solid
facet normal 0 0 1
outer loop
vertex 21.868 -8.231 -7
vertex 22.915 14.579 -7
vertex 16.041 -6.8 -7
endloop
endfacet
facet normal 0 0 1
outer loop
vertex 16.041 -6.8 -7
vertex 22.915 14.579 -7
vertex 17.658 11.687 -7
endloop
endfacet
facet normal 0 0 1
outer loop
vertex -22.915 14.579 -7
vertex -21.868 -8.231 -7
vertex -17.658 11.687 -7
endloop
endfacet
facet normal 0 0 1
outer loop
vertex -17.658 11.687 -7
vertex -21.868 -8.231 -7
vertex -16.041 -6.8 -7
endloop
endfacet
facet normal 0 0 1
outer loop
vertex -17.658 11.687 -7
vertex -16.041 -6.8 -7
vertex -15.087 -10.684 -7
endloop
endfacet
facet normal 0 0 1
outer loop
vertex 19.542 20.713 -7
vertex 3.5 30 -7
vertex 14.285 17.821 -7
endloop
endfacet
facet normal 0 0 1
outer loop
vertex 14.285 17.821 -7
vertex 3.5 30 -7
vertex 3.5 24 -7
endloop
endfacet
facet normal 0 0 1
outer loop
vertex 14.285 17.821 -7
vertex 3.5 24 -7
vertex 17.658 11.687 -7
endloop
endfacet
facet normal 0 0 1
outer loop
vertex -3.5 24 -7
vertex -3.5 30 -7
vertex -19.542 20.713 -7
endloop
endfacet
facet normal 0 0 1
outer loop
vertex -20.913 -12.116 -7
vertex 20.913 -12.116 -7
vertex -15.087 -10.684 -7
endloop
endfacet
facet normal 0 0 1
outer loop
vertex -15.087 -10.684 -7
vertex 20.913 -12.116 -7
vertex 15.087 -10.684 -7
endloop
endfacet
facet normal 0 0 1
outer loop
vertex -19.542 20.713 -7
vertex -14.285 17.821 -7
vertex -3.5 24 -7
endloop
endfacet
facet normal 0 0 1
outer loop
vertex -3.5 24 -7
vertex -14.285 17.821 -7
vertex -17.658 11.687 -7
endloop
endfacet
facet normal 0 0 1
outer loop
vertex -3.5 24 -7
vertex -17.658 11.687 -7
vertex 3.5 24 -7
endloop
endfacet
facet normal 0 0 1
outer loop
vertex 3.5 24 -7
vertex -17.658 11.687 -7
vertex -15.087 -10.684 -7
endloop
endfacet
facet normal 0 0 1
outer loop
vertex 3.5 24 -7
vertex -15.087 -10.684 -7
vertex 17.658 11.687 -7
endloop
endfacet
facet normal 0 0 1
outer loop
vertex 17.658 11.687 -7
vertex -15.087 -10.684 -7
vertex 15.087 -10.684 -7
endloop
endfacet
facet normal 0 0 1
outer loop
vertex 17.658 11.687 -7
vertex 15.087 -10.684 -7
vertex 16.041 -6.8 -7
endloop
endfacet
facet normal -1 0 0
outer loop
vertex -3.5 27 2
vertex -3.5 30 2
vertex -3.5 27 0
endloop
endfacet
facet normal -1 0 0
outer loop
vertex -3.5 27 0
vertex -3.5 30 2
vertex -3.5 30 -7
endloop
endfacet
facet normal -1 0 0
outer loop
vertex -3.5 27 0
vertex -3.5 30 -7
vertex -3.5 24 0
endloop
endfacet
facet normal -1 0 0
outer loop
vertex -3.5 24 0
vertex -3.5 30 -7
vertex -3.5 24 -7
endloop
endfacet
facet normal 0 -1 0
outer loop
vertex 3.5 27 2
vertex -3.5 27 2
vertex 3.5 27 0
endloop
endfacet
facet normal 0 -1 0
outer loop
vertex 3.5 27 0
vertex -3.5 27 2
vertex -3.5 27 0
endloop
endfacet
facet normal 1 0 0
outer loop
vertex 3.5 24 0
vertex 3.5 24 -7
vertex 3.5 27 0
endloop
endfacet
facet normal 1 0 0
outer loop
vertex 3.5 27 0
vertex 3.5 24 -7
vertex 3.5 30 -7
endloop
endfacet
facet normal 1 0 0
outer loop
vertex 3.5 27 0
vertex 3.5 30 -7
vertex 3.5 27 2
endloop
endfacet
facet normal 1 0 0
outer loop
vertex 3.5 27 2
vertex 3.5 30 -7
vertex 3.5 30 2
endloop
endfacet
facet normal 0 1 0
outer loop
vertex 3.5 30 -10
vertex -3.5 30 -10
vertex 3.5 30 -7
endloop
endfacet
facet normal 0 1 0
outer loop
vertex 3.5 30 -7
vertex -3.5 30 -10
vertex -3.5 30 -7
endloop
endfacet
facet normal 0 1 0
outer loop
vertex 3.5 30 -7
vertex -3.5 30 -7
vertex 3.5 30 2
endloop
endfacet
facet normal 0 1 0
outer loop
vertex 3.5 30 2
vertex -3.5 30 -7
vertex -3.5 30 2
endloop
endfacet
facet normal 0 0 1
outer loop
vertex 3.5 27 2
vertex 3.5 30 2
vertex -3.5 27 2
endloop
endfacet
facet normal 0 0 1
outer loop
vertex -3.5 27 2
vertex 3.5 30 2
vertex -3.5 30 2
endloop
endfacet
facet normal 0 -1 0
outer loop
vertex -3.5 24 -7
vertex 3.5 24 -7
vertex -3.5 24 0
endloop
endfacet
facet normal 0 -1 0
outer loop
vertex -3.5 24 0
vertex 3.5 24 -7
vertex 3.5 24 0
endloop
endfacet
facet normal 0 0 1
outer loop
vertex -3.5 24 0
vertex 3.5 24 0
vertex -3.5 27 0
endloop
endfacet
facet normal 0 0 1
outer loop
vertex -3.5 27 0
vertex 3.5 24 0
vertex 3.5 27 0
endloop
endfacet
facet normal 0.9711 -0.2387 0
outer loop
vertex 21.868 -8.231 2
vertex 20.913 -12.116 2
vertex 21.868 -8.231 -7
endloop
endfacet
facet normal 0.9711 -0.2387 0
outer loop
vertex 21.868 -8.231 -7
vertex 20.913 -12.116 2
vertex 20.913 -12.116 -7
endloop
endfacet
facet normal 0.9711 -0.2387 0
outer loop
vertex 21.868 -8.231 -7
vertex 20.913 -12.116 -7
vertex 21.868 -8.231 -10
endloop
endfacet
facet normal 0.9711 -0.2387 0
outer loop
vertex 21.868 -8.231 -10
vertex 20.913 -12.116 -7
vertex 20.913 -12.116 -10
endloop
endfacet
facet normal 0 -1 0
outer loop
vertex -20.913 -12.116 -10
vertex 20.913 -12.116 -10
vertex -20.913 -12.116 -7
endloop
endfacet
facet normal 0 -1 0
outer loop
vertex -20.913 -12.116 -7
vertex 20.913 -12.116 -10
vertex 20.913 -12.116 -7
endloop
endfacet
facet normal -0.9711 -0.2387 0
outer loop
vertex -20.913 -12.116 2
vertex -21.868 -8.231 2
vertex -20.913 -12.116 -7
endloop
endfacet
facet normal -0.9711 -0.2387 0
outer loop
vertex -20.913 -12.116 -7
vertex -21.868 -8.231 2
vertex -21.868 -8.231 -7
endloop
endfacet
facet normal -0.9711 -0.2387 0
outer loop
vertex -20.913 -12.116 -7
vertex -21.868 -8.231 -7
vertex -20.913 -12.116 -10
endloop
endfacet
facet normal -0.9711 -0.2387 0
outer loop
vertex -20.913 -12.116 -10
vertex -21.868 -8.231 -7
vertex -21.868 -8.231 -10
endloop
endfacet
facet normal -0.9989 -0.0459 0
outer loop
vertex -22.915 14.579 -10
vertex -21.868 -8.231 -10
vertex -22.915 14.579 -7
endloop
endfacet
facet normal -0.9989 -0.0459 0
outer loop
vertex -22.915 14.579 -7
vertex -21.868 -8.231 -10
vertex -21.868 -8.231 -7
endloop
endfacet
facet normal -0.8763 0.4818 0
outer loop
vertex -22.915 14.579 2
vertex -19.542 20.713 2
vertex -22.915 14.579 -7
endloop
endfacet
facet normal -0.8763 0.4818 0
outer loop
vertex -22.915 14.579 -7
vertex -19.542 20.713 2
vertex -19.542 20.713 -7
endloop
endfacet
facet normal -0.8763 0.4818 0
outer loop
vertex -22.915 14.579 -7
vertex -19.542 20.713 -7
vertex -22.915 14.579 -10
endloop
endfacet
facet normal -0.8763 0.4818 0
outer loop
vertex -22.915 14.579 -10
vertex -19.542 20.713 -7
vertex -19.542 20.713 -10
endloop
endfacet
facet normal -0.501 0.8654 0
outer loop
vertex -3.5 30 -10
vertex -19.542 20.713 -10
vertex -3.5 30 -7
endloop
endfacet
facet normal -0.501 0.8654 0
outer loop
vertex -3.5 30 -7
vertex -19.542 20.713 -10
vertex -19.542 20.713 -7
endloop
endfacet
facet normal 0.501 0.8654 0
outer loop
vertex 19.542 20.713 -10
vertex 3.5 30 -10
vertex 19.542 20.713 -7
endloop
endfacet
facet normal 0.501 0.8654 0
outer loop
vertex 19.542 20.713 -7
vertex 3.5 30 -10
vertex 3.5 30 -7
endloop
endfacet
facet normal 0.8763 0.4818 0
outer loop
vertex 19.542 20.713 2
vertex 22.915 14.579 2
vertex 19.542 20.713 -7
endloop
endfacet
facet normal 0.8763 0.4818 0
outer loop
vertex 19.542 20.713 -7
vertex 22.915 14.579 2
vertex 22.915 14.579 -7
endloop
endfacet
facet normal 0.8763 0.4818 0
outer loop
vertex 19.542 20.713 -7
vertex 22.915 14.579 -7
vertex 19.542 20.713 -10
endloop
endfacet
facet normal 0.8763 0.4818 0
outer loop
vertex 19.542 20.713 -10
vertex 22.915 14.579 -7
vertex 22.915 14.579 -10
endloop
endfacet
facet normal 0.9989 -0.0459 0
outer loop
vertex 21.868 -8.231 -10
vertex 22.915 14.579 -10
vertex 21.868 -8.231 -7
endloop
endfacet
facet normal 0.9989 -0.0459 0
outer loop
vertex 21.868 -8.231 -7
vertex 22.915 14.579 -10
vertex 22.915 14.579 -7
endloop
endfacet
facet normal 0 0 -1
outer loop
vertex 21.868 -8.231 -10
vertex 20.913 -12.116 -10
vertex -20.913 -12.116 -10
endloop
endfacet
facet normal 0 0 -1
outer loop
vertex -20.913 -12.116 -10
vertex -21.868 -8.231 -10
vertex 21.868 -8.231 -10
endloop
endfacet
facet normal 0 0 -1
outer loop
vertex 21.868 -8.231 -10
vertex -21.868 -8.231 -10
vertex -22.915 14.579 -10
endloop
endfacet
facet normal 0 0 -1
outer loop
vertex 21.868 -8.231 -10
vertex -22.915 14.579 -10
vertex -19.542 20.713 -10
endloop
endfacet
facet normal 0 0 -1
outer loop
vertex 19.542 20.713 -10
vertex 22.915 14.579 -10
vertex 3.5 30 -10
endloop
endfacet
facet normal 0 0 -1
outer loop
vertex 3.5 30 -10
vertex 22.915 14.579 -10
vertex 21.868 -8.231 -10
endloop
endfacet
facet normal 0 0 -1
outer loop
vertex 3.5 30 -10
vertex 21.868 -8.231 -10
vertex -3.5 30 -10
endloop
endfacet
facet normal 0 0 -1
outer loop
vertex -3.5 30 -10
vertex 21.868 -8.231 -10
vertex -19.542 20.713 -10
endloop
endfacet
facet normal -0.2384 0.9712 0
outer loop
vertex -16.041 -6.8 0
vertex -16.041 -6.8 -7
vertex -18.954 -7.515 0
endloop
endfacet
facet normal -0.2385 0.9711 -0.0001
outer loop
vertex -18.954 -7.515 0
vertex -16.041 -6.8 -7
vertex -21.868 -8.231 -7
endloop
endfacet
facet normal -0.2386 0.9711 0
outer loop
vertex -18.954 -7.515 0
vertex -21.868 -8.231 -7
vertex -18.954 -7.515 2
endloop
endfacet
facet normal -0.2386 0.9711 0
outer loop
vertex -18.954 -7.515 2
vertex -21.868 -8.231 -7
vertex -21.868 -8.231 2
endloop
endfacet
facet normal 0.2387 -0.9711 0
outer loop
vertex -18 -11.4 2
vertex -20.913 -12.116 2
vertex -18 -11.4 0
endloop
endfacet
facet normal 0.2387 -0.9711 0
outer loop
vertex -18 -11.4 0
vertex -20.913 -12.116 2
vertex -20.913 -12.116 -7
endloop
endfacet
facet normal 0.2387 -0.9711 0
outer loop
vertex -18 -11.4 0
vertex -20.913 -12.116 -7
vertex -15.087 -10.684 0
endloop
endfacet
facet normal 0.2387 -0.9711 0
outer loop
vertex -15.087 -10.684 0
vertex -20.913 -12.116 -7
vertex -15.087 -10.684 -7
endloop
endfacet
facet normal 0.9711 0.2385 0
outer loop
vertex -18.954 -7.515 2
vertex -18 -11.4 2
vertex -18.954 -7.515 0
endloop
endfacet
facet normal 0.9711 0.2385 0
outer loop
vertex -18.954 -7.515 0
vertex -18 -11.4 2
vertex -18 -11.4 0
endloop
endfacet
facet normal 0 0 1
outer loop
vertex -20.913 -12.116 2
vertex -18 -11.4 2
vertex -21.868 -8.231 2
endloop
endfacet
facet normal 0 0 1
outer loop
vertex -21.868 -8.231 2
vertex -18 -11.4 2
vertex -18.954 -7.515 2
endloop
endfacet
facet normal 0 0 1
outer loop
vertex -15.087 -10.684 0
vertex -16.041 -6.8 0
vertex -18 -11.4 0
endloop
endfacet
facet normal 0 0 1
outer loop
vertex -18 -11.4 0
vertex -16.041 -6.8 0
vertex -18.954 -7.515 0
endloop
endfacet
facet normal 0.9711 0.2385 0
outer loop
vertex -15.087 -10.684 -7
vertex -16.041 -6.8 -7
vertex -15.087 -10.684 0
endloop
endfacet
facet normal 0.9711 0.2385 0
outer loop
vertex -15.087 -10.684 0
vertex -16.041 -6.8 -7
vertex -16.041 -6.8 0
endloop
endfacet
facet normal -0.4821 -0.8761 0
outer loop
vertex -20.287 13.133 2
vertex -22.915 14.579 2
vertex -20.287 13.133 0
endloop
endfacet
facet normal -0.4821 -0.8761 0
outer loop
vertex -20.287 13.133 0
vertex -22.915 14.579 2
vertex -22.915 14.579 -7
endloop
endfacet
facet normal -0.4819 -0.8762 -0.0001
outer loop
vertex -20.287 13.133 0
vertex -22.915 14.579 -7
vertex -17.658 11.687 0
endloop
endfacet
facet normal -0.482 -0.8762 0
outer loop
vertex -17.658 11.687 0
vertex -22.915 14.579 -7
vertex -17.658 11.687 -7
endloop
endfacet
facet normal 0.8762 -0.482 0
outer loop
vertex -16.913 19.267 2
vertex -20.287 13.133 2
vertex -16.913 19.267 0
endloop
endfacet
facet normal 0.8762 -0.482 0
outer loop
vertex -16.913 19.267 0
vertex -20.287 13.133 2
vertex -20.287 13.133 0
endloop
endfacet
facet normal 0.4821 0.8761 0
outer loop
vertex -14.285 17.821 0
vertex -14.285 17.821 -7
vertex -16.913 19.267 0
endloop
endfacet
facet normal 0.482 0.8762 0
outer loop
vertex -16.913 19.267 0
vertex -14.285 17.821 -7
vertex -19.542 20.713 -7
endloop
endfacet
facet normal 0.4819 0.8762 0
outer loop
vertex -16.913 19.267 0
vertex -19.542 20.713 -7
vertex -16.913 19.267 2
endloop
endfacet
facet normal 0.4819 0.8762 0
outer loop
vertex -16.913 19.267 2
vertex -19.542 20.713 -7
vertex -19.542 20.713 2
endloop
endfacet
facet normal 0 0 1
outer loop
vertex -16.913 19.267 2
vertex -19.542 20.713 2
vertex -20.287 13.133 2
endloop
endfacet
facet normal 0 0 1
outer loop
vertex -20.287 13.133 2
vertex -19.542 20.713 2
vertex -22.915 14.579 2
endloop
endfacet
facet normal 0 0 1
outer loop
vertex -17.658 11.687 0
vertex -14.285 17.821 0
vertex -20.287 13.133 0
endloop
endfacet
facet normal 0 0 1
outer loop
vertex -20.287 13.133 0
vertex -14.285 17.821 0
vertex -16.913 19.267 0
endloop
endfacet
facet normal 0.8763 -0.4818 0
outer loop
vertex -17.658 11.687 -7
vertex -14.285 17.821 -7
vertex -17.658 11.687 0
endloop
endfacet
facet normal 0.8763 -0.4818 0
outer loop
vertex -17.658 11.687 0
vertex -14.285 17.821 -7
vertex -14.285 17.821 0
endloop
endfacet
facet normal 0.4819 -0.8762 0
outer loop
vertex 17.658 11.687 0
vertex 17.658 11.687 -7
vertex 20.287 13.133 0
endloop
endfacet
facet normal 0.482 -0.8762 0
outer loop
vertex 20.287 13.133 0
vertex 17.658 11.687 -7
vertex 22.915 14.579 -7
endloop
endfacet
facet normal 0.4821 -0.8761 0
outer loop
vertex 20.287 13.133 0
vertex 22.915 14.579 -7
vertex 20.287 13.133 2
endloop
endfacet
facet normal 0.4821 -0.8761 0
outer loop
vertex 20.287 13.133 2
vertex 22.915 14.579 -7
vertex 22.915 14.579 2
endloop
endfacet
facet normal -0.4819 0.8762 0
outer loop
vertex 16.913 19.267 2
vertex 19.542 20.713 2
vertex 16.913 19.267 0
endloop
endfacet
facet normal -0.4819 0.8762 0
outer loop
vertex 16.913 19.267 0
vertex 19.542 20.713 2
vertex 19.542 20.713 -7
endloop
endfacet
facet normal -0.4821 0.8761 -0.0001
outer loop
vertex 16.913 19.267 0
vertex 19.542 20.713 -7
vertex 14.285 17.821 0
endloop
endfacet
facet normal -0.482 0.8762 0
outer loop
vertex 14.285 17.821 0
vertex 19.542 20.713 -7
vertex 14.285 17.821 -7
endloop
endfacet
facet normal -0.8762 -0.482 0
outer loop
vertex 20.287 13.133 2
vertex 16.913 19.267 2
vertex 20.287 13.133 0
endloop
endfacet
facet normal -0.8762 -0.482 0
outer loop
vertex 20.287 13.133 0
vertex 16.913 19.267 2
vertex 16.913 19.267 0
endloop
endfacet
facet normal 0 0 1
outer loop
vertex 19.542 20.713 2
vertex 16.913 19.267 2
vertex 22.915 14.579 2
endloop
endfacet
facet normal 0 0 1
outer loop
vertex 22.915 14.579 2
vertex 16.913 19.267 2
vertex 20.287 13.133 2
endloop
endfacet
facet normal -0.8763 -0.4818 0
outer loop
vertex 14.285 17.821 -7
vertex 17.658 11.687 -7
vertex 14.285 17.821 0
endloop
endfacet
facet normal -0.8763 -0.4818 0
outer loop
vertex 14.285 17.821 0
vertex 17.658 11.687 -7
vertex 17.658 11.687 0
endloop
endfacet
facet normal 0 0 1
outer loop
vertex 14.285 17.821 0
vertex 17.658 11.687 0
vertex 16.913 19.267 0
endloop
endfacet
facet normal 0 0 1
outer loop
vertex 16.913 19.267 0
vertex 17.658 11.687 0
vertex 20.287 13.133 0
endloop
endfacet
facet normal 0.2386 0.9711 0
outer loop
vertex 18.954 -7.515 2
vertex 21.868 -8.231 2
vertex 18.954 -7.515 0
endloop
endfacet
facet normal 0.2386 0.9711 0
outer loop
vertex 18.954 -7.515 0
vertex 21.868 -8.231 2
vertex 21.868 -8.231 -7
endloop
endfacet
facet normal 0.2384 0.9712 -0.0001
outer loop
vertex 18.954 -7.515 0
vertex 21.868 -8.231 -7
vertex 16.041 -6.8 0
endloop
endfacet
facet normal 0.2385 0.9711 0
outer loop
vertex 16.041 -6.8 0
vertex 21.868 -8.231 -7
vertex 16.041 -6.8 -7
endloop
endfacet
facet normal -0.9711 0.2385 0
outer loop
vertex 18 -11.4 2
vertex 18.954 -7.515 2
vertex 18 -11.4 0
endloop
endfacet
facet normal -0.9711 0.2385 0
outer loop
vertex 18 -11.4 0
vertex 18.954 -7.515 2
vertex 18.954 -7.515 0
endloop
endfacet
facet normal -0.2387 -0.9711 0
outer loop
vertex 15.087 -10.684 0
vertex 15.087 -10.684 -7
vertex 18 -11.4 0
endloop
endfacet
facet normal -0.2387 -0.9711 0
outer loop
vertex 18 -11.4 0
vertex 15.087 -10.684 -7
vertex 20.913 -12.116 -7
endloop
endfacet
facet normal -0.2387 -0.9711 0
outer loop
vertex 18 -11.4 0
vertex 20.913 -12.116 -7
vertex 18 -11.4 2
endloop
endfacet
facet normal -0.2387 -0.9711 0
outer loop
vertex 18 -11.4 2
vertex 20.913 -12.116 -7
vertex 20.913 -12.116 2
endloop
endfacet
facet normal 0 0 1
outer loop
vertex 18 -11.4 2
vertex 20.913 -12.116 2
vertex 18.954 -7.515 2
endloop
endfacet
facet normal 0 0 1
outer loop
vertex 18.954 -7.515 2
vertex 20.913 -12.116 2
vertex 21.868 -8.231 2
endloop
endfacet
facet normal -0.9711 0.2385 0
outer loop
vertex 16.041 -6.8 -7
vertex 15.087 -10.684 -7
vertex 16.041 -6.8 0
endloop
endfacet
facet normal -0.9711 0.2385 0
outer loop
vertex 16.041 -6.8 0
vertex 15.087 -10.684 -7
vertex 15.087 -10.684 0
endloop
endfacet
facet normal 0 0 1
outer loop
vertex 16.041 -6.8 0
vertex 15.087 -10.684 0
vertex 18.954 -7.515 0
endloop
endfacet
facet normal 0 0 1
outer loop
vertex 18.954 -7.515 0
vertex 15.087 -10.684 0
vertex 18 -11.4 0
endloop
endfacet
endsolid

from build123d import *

# Parameters (mm, degrees)
SKETCH2_W             = 7
SKETCH2_H             = 3
BOSS_EXTRUDE1_DEPTH   = 2
BOSS_EXTRUDE1_2_DEPTH = 2
BOSS_EXTRUDE1_3_DEPTH = 2
BOSS_EXTRUDE1_4_DEPTH = 2
BOSS_EXTRUDE1_5_DEPTH = 2
SKETCH3_W             = 7
SKETCH3_H             = 6
BOSS_EXTRUDE2_DEPTH   = 7
BOSS_EXTRUDE3_DEPTH   = 3


with BuildPart() as part:
    # Sketch2 → Boss-Extrude1 (new body)
    with BuildSketch(Plane.XY):
        with Locations((0, 28.5)):
            Rectangle(SKETCH2_W, SKETCH2_H)
    extrude(amount=BOSS_EXTRUDE1_DEPTH)



with BuildPart() as body_2:
    # Sketch2 → Boss-Extrude1 2 (new body)
    with BuildSketch(Plane.XY):
        Polygon((-18.954098941, -7.515454311), (-18, -11.4), (-20.913409267, -12.115574206), (-21.867508208, -8.231028517), align=None)
    extrude(amount=BOSS_EXTRUDE1_2_DEPTH)


with BuildPart() as body_3:
    # Sketch2 → Boss-Extrude1 3 (new body)
    with BuildSketch(Plane.XY):
        Polygon((-20.286715624, 13.13324432), (-16.913284376, 19.26675568), (-19.541932102, 20.71251193), (-22.91536335, 14.579000569), align=None)
    extrude(amount=BOSS_EXTRUDE1_3_DEPTH)


with BuildPart() as body_4:
    # Sketch2 → Boss-Extrude1 4 (new body)
    with BuildSketch(Plane.XY):
        Polygon((22.91536335, 14.579000569), (19.541932102, 20.71251193), (16.913284376, 19.26675568), (20.286715624, 13.13324432), align=None)
    extrude(amount=BOSS_EXTRUDE1_4_DEPTH)


with BuildPart() as body_5:
    # Sketch2 → Boss-Extrude1 5 (new body)
    with BuildSketch(Plane.XY):
        Polygon((21.867508208, -8.231028517), (20.913409267, -12.115574206), (18, -11.4), (18.954098941, -7.515454311), align=None)
    extrude(amount=BOSS_EXTRUDE1_5_DEPTH)


with BuildPart() as part_1:
    add(part.part)

    add(body_2.part)  # Boss-Extrude2 merges body 2

    add(body_3.part)  # Boss-Extrude2 merges body 3

    add(body_4.part)  # Boss-Extrude2 merges body 4

    add(body_5.part)  # Boss-Extrude2 merges body 5
    # Sketch3 → Boss-Extrude2 (add)
    with BuildSketch(Plane.XY):
        Polygon((20.913409267, -12.115574206), (21.867508208, -8.231028517), (16.040689674, -6.799880105), (15.086590733, -10.684425794), align=None)
        Polygon((22.91536335, 14.579000569), (19.541932102, 20.71251193), (14.28463665, 17.820999431), (17.658067898, 11.68748807), align=None)
        with Locations((0, 27)):
            Rectangle(SKETCH3_W, SKETCH3_H)
        Polygon((-17.658067898, 11.68748807), (-14.28463665, 17.820999431), (-19.541932102, 20.71251193), (-22.91536335, 14.579000569), align=None)
        Polygon((-15.086590733, -10.684425794), (-16.040689674, -6.799880105), (-21.867508208, -8.231028517), (-20.913409267, -12.115574206), align=None)
    extrude(amount=-BOSS_EXTRUDE2_DEPTH)

    # Sketch4 → Boss-Extrude3 (add)
    with BuildSketch(Plane(origin=(0, 0, -7), x_dir=(-1, 0, 0), z_dir=(0, 0, -1))):
        Polygon((-21.867508208, -8.231028517), (-22.91536335, 14.579000569), (-19.541932102, 20.71251193), (-3.5, 30), (3.5, 30), (19.541932102, 20.71251193), (22.91536335, 14.579000569), (21.867508208, -8.231028517), (20.913409267, -12.115574206), (-20.913409267, -12.115574206), align=None)
    extrude(amount=BOSS_EXTRUDE3_DEPTH)


solid = part_1.part
